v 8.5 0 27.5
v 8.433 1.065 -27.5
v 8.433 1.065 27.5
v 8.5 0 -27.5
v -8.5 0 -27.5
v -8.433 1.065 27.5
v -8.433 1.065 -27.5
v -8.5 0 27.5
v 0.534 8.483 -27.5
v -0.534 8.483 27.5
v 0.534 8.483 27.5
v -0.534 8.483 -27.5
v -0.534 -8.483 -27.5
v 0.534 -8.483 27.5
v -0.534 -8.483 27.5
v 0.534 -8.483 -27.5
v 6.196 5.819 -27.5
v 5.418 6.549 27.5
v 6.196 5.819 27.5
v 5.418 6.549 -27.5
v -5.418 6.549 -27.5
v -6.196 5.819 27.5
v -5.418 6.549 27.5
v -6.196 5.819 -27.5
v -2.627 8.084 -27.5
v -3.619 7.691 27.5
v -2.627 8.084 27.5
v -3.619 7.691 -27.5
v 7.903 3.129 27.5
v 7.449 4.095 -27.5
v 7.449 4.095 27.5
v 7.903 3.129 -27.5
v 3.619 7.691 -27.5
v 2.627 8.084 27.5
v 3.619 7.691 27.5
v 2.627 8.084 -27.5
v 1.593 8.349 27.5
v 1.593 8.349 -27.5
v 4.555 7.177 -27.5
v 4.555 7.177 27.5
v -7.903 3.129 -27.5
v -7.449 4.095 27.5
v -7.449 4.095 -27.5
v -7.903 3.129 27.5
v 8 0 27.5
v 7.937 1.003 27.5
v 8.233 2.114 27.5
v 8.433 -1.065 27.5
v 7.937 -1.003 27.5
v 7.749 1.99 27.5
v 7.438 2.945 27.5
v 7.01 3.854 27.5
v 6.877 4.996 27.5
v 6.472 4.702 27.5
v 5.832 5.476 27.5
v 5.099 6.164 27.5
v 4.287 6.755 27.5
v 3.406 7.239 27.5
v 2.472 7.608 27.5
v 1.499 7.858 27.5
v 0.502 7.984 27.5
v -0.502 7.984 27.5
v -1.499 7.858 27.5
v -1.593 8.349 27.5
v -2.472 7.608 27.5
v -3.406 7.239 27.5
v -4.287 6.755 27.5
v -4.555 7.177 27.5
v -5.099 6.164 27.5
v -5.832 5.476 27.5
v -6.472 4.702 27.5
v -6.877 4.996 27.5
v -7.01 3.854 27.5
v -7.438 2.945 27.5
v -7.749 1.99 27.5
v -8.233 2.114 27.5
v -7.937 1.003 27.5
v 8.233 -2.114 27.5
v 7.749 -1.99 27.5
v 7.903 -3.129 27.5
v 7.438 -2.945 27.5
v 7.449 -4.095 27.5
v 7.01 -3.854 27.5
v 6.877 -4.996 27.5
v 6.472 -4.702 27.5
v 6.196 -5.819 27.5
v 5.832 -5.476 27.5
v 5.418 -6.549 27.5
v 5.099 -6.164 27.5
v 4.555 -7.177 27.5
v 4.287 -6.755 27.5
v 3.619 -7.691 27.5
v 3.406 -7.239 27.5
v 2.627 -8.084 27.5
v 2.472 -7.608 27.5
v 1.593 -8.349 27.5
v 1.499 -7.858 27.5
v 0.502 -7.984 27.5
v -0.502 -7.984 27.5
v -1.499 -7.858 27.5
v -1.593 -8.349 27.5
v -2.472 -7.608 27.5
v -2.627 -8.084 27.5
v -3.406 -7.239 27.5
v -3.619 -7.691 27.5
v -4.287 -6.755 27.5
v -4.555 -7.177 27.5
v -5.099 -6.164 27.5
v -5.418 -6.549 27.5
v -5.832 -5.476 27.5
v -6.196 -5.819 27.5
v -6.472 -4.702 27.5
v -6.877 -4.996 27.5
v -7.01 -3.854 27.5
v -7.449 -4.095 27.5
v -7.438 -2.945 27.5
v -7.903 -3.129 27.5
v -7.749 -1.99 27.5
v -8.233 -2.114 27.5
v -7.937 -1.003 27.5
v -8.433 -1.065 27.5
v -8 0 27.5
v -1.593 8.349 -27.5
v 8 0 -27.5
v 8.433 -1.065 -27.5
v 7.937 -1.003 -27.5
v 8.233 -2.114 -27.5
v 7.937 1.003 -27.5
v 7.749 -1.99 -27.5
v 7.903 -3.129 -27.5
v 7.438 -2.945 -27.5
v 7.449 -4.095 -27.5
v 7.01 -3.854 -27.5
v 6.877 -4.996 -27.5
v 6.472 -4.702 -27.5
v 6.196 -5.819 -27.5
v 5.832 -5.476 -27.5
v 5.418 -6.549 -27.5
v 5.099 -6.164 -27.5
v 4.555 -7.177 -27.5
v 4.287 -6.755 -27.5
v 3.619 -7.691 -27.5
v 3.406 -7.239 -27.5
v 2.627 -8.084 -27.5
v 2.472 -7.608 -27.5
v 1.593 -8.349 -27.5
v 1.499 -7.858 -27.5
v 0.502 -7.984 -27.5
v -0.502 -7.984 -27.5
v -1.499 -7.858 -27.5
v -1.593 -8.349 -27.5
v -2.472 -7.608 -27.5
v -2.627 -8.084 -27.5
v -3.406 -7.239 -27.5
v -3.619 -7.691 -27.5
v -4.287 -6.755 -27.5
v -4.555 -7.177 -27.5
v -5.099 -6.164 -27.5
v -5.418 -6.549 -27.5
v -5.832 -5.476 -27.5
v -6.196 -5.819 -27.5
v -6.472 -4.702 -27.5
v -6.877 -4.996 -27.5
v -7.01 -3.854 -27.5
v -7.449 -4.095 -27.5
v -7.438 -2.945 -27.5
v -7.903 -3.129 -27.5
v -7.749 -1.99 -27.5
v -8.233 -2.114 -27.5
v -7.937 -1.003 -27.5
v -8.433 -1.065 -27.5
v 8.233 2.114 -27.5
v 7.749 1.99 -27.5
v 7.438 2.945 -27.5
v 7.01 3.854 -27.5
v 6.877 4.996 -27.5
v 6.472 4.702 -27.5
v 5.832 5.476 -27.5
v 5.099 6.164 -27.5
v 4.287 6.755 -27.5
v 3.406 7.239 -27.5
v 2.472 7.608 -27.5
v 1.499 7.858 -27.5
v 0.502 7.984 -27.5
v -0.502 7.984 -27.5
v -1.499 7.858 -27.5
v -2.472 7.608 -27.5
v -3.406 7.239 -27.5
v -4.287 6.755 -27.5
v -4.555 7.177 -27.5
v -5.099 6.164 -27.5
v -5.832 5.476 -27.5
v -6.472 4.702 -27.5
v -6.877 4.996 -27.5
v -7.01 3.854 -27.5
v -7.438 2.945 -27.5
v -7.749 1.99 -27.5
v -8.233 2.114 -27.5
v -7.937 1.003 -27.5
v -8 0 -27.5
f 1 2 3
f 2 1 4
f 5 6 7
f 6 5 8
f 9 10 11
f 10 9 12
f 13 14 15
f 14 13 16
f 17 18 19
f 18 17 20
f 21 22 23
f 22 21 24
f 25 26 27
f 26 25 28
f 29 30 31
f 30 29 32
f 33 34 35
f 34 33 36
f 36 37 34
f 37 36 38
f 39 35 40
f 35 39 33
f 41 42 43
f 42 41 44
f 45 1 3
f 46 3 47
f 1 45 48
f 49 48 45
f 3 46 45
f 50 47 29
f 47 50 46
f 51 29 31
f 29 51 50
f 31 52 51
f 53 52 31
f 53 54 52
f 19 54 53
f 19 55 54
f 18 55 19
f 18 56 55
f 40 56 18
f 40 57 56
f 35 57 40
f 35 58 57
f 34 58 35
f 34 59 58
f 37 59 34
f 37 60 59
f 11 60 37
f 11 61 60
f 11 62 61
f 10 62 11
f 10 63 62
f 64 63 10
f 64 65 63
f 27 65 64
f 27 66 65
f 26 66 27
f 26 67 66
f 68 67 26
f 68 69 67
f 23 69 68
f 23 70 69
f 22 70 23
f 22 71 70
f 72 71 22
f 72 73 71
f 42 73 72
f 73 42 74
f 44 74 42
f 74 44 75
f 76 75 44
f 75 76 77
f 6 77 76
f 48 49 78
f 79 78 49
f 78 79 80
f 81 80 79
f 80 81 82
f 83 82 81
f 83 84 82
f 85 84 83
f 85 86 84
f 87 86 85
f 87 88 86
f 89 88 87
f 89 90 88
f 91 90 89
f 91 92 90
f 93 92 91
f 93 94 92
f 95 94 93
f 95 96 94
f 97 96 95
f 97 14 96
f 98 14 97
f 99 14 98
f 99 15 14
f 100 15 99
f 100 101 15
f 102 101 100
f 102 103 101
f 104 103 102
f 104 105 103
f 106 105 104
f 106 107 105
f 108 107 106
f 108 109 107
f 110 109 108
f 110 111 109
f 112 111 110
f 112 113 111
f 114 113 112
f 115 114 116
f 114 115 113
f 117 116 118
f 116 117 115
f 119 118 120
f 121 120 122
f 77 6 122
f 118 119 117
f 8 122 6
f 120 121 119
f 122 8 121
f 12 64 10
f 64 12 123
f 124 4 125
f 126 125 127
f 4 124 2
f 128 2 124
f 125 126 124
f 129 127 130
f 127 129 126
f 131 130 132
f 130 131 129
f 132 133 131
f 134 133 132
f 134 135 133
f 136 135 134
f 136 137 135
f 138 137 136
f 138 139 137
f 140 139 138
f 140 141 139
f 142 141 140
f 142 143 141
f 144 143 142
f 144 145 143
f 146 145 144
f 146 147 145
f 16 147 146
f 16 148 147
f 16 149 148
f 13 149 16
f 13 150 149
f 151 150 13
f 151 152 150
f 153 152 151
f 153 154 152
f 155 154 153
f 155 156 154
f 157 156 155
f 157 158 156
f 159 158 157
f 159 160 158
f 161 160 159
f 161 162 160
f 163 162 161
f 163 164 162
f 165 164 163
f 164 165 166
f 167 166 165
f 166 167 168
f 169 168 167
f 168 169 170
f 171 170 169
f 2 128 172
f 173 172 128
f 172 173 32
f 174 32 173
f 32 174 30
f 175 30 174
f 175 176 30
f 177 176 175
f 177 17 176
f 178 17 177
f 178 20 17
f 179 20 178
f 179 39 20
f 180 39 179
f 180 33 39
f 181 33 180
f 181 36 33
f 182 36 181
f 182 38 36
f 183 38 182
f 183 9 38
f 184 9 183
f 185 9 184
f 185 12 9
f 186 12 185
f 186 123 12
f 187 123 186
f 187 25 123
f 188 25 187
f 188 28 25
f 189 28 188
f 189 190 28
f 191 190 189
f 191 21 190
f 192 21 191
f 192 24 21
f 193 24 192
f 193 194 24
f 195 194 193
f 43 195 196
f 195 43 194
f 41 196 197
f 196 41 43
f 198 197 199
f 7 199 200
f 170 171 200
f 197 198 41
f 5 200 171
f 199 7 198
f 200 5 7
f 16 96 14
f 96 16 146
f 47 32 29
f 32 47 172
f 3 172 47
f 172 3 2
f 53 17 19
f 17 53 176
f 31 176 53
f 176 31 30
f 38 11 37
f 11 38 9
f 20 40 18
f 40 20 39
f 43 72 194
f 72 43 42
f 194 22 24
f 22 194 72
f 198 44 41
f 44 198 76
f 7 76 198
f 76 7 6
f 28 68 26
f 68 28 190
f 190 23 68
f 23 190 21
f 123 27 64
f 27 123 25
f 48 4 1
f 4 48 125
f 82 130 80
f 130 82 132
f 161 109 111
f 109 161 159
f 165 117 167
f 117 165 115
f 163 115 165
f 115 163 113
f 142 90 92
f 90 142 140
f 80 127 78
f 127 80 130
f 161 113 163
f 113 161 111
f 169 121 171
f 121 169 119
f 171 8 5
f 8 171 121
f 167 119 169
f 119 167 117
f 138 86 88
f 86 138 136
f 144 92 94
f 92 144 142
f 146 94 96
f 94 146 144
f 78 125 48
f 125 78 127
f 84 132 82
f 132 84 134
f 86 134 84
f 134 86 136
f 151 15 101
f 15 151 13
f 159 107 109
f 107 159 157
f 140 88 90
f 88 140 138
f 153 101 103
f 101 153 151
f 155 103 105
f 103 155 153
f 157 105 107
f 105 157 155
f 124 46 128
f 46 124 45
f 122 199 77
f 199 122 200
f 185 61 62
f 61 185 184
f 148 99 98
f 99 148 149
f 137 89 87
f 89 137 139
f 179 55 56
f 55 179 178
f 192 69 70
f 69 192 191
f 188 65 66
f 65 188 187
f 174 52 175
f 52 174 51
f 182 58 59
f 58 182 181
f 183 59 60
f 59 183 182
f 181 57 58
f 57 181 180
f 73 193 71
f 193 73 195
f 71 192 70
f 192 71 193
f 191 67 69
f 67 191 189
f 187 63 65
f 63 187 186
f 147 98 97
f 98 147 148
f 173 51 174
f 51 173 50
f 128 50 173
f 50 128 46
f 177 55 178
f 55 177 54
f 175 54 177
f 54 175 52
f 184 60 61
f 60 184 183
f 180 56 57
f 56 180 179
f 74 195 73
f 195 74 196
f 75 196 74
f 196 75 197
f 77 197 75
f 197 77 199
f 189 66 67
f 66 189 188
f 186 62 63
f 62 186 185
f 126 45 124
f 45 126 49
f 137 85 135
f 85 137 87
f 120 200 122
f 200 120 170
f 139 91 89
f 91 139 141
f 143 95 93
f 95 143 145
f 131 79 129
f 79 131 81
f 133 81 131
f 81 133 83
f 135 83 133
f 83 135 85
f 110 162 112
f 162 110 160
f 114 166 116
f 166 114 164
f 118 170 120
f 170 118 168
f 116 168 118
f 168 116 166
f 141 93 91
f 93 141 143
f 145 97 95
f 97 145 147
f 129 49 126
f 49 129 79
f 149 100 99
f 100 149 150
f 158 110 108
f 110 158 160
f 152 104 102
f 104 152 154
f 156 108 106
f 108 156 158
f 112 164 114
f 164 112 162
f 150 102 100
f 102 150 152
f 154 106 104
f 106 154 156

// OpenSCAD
$fn = 50;


difference() {
	union() {
		translate(v = [0, 0, -27.5000000000]) {
			cylinder(h = 55, r = 8.5000000000);
		}
	}
	union() {
		translate(v = [0, 0, -100.0000000000]) {
			cylinder(h = 200, r = 8);
		}
	}
}
